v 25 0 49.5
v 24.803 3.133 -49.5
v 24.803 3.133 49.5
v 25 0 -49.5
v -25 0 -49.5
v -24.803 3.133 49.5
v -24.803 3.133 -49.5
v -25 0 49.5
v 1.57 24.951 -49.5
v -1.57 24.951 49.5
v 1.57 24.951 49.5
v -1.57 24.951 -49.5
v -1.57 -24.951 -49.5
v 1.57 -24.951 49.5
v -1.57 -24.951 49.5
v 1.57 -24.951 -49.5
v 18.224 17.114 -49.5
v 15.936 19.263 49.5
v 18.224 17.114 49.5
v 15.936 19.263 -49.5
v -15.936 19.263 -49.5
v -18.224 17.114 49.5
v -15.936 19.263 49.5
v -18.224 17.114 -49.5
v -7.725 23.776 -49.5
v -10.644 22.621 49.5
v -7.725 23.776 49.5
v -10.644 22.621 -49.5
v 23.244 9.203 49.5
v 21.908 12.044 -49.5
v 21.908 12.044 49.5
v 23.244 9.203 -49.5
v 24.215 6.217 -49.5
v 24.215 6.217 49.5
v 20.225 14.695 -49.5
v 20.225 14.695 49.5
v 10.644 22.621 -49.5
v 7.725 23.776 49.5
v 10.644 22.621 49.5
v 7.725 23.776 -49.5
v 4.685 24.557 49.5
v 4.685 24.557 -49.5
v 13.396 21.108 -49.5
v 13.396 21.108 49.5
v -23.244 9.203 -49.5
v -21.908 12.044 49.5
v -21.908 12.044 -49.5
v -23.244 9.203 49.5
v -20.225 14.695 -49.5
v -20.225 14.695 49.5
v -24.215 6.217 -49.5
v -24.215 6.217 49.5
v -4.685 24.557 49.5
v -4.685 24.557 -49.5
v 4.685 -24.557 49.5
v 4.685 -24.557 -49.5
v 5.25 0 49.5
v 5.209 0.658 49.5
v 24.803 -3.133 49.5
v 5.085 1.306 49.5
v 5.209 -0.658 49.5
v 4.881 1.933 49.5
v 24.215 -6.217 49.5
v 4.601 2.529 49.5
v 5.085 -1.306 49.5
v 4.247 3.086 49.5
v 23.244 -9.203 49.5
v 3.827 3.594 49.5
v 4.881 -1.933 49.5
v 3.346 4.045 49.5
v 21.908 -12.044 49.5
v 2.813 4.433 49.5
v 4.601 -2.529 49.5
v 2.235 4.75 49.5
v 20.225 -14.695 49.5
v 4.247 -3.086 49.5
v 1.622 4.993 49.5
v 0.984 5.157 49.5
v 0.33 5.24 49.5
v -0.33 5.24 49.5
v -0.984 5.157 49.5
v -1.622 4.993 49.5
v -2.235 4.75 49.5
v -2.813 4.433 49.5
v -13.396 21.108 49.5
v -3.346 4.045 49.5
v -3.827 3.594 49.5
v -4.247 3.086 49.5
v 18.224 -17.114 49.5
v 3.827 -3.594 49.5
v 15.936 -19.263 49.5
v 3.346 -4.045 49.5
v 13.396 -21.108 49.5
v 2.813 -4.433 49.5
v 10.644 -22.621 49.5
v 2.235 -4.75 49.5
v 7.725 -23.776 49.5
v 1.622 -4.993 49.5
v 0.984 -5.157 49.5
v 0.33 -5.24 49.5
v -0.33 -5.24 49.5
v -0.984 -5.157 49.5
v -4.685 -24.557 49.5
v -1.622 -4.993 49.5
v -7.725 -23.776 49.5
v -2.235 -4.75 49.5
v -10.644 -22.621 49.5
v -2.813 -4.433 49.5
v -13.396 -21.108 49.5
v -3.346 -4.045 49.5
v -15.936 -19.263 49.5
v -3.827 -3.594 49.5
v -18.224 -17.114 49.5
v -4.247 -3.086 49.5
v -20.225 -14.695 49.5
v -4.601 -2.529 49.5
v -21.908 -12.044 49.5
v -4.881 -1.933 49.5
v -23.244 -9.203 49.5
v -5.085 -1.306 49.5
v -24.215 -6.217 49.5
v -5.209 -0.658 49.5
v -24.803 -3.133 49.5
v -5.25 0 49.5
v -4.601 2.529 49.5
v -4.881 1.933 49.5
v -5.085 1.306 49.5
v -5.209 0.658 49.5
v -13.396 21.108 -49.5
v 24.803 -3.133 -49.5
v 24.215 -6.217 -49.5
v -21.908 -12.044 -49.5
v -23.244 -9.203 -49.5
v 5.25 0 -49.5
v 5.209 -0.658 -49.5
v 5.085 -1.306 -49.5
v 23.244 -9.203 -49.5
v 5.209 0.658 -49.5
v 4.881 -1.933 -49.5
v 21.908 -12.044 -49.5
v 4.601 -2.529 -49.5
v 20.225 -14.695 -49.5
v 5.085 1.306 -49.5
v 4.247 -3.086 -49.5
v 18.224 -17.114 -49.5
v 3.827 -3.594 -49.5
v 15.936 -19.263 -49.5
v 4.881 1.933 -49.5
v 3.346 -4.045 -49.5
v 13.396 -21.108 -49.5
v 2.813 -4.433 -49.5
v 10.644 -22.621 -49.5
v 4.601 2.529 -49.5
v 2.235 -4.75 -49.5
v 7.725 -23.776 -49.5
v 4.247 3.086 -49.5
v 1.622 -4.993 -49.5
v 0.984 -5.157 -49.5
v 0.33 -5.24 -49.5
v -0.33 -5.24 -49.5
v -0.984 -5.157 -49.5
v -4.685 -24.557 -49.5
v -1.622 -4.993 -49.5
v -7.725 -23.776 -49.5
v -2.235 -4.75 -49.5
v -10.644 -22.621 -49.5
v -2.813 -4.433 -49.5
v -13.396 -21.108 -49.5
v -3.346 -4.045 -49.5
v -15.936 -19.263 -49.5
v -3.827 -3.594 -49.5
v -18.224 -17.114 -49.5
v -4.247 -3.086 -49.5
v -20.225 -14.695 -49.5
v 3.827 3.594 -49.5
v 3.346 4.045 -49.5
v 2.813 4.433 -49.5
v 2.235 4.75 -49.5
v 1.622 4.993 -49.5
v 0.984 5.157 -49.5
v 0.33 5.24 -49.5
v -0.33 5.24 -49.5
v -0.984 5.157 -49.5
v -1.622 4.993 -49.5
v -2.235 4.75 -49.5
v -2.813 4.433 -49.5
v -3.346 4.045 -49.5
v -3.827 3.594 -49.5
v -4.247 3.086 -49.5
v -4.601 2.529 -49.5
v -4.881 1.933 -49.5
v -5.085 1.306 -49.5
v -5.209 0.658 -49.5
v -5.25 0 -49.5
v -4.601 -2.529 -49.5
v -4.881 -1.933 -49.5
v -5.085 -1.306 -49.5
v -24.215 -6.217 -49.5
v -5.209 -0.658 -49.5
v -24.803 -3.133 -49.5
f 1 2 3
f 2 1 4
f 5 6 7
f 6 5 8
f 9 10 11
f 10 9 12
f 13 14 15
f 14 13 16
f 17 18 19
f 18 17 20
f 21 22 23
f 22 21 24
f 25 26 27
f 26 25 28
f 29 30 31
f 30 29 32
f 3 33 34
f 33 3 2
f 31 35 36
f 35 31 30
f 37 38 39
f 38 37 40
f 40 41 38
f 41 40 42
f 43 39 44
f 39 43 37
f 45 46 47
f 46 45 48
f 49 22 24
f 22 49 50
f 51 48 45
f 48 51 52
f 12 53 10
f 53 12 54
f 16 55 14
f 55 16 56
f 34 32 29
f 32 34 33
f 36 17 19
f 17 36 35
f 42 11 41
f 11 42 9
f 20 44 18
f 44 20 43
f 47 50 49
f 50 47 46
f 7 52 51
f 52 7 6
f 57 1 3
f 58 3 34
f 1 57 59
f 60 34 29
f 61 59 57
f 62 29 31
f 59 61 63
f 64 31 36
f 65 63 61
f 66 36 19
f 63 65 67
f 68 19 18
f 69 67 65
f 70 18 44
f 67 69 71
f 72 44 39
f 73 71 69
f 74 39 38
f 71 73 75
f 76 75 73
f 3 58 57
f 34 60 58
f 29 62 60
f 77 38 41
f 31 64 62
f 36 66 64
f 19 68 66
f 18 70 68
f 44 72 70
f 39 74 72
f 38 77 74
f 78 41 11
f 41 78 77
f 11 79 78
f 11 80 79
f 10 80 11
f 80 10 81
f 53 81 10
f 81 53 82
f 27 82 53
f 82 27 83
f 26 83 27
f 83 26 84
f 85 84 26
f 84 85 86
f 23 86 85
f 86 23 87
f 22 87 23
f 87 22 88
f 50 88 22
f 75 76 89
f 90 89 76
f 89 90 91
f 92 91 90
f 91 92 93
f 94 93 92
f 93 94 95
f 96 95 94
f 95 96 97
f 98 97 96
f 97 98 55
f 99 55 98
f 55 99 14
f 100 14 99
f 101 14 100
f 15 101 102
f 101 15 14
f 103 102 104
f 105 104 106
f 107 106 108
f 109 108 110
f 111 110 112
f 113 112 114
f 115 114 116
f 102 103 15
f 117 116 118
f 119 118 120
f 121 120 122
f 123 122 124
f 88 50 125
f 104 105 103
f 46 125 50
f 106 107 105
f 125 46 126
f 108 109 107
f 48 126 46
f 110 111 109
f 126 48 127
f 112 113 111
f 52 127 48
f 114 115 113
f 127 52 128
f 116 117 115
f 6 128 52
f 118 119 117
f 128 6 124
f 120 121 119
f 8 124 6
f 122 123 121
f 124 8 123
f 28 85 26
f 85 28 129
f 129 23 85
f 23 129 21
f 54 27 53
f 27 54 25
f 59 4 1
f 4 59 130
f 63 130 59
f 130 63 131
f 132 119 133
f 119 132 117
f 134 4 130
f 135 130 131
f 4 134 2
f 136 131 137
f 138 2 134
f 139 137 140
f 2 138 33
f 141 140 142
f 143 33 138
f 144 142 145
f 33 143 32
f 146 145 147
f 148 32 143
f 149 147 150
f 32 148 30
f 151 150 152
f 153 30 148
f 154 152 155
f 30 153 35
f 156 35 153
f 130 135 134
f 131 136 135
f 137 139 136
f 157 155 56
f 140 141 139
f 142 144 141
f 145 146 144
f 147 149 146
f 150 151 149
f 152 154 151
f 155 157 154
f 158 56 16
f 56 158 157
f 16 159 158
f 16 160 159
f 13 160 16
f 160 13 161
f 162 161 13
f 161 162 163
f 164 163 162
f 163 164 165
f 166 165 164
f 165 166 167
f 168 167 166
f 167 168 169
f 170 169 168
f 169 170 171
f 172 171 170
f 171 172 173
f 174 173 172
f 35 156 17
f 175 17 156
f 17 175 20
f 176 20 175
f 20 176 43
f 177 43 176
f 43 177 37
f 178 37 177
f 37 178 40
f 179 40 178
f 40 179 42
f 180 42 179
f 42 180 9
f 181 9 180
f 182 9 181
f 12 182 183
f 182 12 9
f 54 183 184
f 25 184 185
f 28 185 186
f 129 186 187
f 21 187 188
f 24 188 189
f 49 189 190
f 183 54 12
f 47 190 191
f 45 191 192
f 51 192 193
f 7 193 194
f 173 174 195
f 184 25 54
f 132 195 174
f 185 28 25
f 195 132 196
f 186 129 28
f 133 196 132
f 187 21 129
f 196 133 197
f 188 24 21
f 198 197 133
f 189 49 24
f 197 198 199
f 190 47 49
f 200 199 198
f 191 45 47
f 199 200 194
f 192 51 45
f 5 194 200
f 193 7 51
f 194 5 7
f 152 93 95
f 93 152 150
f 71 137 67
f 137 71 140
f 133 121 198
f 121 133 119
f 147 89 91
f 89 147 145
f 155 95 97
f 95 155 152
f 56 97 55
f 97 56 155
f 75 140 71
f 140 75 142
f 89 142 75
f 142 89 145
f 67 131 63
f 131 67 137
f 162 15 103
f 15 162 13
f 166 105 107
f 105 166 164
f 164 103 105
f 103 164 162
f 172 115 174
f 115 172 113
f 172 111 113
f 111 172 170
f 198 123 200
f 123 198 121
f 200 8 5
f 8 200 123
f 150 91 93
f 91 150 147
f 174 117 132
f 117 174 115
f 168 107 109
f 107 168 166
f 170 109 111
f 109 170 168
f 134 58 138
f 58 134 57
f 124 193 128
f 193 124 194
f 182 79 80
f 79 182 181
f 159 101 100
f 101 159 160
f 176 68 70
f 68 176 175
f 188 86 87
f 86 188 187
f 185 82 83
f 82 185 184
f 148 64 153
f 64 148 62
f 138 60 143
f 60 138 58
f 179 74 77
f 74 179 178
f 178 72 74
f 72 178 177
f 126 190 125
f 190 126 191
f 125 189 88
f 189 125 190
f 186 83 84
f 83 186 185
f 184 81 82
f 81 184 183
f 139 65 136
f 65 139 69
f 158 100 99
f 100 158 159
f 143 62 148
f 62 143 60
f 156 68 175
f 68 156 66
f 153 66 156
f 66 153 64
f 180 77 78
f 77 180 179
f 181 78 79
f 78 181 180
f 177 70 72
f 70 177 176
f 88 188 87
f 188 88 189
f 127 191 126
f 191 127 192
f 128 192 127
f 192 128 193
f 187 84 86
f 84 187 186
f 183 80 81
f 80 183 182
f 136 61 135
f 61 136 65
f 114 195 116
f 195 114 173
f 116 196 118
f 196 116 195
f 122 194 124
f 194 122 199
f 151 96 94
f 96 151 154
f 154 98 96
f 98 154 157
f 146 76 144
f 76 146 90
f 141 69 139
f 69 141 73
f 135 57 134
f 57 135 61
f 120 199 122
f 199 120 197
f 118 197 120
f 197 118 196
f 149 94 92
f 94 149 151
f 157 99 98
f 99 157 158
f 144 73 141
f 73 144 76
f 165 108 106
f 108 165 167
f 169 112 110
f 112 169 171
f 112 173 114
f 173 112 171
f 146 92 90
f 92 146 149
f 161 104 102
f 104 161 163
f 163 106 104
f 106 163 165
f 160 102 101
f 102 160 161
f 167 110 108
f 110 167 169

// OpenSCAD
$fn = 50;


difference() {
	union() {
		translate(v = [0, 0, -49.5000000000]) {
			cylinder(h = 99, r = 25.0000000000);
		}
	}
	union() {
		translate(v = [0, 0, -100.0000000000]) {
			cylinder(h = 200, r = 5.2500000000);
		}
	}
}
